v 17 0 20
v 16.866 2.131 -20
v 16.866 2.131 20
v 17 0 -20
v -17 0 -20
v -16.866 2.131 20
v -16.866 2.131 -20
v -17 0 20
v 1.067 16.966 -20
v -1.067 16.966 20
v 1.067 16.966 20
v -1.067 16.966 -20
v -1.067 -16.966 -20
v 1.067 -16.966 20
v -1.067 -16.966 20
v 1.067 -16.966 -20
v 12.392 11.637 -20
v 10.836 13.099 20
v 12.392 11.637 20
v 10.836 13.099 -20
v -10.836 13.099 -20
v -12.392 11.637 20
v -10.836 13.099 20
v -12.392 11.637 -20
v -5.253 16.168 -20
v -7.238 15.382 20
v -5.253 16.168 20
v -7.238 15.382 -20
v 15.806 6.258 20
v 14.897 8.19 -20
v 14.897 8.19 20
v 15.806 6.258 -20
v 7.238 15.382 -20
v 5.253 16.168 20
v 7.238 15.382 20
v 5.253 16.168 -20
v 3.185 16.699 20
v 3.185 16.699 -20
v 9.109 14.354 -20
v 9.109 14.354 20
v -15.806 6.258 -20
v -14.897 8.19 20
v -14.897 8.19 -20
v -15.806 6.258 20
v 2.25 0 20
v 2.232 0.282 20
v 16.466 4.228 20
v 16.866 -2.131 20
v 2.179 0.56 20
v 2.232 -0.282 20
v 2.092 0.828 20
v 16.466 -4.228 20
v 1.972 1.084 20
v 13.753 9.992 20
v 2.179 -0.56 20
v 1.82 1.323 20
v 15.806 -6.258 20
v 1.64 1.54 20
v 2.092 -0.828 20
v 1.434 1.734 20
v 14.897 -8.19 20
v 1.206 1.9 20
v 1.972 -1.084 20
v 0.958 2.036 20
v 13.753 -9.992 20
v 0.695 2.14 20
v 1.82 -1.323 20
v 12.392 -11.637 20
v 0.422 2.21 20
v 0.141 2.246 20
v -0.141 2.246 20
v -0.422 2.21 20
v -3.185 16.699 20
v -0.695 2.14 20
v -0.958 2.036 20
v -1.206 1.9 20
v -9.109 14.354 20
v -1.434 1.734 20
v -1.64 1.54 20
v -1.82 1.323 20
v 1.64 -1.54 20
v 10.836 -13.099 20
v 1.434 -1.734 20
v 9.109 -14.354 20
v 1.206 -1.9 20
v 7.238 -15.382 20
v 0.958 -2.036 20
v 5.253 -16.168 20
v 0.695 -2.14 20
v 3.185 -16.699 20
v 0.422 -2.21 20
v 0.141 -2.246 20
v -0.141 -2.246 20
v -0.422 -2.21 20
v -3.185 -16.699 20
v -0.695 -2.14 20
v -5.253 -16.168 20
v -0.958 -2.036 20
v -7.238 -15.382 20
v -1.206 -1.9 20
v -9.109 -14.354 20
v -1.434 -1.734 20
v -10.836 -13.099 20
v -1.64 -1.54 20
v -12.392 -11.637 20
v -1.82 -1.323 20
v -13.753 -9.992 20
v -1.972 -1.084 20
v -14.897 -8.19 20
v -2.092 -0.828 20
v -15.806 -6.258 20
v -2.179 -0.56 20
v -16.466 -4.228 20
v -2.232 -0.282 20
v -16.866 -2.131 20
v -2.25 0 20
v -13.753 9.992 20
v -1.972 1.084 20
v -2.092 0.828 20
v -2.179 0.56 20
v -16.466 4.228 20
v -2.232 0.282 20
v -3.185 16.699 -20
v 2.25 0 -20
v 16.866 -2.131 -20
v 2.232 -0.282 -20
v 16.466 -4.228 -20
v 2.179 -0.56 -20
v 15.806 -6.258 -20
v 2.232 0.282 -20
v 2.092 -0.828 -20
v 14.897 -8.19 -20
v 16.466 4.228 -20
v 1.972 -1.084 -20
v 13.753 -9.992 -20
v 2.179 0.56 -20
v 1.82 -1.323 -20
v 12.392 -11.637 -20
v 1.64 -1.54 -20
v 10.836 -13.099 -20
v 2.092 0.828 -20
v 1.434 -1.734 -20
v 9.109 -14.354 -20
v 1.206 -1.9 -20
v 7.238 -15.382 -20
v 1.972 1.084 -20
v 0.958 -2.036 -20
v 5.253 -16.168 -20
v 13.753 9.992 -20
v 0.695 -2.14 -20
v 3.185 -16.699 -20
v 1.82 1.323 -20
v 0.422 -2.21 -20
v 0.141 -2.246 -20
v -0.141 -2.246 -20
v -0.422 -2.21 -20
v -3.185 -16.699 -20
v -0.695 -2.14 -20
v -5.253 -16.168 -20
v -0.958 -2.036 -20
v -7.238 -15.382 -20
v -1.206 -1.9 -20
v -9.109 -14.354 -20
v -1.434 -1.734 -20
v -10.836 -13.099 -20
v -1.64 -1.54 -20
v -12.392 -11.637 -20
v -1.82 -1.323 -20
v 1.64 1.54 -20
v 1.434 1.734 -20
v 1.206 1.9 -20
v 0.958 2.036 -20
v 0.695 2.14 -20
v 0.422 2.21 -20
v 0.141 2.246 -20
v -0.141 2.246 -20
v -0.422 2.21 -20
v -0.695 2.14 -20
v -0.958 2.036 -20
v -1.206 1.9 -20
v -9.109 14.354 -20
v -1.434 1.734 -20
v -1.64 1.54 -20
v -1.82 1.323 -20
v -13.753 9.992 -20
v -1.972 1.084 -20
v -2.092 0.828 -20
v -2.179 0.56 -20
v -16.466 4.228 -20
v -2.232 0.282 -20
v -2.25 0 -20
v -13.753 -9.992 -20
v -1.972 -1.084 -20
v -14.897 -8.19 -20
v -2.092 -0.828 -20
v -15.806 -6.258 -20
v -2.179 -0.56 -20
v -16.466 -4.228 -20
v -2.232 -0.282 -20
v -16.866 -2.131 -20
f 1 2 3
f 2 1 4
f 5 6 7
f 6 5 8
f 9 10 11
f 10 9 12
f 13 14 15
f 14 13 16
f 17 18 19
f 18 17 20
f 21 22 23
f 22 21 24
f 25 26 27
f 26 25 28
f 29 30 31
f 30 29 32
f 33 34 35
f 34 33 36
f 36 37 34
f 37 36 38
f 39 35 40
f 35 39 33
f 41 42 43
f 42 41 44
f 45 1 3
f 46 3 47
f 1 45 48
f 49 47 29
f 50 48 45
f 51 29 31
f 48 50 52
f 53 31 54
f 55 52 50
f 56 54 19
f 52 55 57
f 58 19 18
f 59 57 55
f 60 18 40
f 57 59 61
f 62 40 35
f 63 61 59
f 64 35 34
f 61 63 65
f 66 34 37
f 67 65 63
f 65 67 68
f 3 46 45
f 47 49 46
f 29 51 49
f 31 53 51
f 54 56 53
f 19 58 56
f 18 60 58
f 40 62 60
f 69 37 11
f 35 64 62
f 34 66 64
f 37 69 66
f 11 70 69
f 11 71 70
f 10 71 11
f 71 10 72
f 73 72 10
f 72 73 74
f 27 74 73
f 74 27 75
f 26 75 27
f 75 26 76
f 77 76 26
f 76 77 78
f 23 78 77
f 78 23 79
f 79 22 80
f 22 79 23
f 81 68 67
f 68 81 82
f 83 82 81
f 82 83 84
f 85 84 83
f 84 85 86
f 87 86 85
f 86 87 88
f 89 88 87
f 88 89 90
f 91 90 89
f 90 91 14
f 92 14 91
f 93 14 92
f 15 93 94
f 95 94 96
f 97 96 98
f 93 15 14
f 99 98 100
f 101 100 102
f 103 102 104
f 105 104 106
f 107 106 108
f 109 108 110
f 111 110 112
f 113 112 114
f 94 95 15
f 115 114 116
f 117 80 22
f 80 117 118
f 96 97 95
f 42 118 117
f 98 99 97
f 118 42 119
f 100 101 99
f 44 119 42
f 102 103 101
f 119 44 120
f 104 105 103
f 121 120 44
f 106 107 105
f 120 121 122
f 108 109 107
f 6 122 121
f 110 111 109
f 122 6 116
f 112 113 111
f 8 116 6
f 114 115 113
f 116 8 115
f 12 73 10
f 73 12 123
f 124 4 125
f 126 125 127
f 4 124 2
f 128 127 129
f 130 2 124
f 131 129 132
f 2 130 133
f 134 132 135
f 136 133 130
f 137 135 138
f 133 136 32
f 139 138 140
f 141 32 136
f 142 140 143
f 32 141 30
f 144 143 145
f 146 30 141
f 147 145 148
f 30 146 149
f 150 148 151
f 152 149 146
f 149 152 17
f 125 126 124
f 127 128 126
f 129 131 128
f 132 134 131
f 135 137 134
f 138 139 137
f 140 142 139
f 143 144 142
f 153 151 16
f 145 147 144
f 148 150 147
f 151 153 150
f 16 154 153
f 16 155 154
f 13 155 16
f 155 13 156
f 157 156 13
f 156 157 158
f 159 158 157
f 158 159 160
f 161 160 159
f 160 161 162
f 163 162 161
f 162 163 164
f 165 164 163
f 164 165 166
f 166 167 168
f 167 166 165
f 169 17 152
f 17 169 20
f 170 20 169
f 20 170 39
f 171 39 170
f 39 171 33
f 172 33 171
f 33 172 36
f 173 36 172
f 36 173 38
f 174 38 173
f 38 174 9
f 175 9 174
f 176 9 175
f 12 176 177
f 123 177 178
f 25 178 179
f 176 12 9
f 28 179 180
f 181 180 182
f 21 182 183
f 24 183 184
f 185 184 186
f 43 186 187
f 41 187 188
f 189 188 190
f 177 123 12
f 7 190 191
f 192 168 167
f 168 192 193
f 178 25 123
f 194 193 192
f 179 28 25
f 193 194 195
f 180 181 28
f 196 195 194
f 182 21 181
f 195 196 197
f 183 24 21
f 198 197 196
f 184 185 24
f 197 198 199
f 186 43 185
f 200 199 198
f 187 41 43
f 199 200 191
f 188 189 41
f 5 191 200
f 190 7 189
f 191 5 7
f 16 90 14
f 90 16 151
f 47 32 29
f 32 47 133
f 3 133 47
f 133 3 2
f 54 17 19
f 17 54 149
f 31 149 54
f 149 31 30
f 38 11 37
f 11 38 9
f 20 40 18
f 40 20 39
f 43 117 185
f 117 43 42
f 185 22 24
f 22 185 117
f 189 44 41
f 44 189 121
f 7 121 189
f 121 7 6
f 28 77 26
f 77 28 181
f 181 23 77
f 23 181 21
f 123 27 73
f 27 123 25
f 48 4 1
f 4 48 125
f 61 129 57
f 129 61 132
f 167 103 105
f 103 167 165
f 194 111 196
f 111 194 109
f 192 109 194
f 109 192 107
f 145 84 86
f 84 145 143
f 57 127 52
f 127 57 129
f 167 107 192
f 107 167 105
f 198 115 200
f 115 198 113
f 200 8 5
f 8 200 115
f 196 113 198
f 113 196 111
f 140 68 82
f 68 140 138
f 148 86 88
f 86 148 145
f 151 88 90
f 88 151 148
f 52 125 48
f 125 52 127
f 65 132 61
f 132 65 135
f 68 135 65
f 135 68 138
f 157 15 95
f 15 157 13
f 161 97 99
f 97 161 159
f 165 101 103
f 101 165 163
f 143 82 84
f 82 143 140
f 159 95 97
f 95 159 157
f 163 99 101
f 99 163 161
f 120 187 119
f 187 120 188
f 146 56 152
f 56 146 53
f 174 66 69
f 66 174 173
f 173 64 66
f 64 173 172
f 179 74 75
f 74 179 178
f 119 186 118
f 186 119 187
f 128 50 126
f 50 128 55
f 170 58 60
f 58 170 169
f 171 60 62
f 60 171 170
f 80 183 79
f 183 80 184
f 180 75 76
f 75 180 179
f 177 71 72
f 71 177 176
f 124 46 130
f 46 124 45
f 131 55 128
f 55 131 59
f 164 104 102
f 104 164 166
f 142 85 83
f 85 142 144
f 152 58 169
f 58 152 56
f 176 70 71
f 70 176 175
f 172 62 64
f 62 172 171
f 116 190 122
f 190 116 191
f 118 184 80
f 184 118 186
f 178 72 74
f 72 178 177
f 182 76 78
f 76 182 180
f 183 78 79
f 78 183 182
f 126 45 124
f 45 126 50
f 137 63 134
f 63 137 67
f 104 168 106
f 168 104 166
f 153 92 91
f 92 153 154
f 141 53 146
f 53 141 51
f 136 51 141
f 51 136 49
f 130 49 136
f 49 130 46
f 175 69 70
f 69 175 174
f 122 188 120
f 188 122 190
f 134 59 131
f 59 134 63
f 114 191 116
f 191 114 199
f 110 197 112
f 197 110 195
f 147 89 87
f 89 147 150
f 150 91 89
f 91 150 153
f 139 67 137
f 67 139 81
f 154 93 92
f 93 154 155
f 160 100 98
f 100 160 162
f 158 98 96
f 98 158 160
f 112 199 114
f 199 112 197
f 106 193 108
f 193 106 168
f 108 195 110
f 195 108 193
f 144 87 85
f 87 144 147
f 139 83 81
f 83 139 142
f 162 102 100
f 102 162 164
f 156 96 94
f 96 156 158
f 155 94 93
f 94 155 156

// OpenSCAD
$fn = 50;


difference() {
	union() {
		translate(v = [0, 0, -20.0000000000]) {
			cylinder(h = 40, r = 17.0000000000);
		}
	}
	union() {
		translate(v = [0, 0, -100.0000000000]) {
			cylinder(h = 200, r = 2.2500000000);
		}
	}
}
